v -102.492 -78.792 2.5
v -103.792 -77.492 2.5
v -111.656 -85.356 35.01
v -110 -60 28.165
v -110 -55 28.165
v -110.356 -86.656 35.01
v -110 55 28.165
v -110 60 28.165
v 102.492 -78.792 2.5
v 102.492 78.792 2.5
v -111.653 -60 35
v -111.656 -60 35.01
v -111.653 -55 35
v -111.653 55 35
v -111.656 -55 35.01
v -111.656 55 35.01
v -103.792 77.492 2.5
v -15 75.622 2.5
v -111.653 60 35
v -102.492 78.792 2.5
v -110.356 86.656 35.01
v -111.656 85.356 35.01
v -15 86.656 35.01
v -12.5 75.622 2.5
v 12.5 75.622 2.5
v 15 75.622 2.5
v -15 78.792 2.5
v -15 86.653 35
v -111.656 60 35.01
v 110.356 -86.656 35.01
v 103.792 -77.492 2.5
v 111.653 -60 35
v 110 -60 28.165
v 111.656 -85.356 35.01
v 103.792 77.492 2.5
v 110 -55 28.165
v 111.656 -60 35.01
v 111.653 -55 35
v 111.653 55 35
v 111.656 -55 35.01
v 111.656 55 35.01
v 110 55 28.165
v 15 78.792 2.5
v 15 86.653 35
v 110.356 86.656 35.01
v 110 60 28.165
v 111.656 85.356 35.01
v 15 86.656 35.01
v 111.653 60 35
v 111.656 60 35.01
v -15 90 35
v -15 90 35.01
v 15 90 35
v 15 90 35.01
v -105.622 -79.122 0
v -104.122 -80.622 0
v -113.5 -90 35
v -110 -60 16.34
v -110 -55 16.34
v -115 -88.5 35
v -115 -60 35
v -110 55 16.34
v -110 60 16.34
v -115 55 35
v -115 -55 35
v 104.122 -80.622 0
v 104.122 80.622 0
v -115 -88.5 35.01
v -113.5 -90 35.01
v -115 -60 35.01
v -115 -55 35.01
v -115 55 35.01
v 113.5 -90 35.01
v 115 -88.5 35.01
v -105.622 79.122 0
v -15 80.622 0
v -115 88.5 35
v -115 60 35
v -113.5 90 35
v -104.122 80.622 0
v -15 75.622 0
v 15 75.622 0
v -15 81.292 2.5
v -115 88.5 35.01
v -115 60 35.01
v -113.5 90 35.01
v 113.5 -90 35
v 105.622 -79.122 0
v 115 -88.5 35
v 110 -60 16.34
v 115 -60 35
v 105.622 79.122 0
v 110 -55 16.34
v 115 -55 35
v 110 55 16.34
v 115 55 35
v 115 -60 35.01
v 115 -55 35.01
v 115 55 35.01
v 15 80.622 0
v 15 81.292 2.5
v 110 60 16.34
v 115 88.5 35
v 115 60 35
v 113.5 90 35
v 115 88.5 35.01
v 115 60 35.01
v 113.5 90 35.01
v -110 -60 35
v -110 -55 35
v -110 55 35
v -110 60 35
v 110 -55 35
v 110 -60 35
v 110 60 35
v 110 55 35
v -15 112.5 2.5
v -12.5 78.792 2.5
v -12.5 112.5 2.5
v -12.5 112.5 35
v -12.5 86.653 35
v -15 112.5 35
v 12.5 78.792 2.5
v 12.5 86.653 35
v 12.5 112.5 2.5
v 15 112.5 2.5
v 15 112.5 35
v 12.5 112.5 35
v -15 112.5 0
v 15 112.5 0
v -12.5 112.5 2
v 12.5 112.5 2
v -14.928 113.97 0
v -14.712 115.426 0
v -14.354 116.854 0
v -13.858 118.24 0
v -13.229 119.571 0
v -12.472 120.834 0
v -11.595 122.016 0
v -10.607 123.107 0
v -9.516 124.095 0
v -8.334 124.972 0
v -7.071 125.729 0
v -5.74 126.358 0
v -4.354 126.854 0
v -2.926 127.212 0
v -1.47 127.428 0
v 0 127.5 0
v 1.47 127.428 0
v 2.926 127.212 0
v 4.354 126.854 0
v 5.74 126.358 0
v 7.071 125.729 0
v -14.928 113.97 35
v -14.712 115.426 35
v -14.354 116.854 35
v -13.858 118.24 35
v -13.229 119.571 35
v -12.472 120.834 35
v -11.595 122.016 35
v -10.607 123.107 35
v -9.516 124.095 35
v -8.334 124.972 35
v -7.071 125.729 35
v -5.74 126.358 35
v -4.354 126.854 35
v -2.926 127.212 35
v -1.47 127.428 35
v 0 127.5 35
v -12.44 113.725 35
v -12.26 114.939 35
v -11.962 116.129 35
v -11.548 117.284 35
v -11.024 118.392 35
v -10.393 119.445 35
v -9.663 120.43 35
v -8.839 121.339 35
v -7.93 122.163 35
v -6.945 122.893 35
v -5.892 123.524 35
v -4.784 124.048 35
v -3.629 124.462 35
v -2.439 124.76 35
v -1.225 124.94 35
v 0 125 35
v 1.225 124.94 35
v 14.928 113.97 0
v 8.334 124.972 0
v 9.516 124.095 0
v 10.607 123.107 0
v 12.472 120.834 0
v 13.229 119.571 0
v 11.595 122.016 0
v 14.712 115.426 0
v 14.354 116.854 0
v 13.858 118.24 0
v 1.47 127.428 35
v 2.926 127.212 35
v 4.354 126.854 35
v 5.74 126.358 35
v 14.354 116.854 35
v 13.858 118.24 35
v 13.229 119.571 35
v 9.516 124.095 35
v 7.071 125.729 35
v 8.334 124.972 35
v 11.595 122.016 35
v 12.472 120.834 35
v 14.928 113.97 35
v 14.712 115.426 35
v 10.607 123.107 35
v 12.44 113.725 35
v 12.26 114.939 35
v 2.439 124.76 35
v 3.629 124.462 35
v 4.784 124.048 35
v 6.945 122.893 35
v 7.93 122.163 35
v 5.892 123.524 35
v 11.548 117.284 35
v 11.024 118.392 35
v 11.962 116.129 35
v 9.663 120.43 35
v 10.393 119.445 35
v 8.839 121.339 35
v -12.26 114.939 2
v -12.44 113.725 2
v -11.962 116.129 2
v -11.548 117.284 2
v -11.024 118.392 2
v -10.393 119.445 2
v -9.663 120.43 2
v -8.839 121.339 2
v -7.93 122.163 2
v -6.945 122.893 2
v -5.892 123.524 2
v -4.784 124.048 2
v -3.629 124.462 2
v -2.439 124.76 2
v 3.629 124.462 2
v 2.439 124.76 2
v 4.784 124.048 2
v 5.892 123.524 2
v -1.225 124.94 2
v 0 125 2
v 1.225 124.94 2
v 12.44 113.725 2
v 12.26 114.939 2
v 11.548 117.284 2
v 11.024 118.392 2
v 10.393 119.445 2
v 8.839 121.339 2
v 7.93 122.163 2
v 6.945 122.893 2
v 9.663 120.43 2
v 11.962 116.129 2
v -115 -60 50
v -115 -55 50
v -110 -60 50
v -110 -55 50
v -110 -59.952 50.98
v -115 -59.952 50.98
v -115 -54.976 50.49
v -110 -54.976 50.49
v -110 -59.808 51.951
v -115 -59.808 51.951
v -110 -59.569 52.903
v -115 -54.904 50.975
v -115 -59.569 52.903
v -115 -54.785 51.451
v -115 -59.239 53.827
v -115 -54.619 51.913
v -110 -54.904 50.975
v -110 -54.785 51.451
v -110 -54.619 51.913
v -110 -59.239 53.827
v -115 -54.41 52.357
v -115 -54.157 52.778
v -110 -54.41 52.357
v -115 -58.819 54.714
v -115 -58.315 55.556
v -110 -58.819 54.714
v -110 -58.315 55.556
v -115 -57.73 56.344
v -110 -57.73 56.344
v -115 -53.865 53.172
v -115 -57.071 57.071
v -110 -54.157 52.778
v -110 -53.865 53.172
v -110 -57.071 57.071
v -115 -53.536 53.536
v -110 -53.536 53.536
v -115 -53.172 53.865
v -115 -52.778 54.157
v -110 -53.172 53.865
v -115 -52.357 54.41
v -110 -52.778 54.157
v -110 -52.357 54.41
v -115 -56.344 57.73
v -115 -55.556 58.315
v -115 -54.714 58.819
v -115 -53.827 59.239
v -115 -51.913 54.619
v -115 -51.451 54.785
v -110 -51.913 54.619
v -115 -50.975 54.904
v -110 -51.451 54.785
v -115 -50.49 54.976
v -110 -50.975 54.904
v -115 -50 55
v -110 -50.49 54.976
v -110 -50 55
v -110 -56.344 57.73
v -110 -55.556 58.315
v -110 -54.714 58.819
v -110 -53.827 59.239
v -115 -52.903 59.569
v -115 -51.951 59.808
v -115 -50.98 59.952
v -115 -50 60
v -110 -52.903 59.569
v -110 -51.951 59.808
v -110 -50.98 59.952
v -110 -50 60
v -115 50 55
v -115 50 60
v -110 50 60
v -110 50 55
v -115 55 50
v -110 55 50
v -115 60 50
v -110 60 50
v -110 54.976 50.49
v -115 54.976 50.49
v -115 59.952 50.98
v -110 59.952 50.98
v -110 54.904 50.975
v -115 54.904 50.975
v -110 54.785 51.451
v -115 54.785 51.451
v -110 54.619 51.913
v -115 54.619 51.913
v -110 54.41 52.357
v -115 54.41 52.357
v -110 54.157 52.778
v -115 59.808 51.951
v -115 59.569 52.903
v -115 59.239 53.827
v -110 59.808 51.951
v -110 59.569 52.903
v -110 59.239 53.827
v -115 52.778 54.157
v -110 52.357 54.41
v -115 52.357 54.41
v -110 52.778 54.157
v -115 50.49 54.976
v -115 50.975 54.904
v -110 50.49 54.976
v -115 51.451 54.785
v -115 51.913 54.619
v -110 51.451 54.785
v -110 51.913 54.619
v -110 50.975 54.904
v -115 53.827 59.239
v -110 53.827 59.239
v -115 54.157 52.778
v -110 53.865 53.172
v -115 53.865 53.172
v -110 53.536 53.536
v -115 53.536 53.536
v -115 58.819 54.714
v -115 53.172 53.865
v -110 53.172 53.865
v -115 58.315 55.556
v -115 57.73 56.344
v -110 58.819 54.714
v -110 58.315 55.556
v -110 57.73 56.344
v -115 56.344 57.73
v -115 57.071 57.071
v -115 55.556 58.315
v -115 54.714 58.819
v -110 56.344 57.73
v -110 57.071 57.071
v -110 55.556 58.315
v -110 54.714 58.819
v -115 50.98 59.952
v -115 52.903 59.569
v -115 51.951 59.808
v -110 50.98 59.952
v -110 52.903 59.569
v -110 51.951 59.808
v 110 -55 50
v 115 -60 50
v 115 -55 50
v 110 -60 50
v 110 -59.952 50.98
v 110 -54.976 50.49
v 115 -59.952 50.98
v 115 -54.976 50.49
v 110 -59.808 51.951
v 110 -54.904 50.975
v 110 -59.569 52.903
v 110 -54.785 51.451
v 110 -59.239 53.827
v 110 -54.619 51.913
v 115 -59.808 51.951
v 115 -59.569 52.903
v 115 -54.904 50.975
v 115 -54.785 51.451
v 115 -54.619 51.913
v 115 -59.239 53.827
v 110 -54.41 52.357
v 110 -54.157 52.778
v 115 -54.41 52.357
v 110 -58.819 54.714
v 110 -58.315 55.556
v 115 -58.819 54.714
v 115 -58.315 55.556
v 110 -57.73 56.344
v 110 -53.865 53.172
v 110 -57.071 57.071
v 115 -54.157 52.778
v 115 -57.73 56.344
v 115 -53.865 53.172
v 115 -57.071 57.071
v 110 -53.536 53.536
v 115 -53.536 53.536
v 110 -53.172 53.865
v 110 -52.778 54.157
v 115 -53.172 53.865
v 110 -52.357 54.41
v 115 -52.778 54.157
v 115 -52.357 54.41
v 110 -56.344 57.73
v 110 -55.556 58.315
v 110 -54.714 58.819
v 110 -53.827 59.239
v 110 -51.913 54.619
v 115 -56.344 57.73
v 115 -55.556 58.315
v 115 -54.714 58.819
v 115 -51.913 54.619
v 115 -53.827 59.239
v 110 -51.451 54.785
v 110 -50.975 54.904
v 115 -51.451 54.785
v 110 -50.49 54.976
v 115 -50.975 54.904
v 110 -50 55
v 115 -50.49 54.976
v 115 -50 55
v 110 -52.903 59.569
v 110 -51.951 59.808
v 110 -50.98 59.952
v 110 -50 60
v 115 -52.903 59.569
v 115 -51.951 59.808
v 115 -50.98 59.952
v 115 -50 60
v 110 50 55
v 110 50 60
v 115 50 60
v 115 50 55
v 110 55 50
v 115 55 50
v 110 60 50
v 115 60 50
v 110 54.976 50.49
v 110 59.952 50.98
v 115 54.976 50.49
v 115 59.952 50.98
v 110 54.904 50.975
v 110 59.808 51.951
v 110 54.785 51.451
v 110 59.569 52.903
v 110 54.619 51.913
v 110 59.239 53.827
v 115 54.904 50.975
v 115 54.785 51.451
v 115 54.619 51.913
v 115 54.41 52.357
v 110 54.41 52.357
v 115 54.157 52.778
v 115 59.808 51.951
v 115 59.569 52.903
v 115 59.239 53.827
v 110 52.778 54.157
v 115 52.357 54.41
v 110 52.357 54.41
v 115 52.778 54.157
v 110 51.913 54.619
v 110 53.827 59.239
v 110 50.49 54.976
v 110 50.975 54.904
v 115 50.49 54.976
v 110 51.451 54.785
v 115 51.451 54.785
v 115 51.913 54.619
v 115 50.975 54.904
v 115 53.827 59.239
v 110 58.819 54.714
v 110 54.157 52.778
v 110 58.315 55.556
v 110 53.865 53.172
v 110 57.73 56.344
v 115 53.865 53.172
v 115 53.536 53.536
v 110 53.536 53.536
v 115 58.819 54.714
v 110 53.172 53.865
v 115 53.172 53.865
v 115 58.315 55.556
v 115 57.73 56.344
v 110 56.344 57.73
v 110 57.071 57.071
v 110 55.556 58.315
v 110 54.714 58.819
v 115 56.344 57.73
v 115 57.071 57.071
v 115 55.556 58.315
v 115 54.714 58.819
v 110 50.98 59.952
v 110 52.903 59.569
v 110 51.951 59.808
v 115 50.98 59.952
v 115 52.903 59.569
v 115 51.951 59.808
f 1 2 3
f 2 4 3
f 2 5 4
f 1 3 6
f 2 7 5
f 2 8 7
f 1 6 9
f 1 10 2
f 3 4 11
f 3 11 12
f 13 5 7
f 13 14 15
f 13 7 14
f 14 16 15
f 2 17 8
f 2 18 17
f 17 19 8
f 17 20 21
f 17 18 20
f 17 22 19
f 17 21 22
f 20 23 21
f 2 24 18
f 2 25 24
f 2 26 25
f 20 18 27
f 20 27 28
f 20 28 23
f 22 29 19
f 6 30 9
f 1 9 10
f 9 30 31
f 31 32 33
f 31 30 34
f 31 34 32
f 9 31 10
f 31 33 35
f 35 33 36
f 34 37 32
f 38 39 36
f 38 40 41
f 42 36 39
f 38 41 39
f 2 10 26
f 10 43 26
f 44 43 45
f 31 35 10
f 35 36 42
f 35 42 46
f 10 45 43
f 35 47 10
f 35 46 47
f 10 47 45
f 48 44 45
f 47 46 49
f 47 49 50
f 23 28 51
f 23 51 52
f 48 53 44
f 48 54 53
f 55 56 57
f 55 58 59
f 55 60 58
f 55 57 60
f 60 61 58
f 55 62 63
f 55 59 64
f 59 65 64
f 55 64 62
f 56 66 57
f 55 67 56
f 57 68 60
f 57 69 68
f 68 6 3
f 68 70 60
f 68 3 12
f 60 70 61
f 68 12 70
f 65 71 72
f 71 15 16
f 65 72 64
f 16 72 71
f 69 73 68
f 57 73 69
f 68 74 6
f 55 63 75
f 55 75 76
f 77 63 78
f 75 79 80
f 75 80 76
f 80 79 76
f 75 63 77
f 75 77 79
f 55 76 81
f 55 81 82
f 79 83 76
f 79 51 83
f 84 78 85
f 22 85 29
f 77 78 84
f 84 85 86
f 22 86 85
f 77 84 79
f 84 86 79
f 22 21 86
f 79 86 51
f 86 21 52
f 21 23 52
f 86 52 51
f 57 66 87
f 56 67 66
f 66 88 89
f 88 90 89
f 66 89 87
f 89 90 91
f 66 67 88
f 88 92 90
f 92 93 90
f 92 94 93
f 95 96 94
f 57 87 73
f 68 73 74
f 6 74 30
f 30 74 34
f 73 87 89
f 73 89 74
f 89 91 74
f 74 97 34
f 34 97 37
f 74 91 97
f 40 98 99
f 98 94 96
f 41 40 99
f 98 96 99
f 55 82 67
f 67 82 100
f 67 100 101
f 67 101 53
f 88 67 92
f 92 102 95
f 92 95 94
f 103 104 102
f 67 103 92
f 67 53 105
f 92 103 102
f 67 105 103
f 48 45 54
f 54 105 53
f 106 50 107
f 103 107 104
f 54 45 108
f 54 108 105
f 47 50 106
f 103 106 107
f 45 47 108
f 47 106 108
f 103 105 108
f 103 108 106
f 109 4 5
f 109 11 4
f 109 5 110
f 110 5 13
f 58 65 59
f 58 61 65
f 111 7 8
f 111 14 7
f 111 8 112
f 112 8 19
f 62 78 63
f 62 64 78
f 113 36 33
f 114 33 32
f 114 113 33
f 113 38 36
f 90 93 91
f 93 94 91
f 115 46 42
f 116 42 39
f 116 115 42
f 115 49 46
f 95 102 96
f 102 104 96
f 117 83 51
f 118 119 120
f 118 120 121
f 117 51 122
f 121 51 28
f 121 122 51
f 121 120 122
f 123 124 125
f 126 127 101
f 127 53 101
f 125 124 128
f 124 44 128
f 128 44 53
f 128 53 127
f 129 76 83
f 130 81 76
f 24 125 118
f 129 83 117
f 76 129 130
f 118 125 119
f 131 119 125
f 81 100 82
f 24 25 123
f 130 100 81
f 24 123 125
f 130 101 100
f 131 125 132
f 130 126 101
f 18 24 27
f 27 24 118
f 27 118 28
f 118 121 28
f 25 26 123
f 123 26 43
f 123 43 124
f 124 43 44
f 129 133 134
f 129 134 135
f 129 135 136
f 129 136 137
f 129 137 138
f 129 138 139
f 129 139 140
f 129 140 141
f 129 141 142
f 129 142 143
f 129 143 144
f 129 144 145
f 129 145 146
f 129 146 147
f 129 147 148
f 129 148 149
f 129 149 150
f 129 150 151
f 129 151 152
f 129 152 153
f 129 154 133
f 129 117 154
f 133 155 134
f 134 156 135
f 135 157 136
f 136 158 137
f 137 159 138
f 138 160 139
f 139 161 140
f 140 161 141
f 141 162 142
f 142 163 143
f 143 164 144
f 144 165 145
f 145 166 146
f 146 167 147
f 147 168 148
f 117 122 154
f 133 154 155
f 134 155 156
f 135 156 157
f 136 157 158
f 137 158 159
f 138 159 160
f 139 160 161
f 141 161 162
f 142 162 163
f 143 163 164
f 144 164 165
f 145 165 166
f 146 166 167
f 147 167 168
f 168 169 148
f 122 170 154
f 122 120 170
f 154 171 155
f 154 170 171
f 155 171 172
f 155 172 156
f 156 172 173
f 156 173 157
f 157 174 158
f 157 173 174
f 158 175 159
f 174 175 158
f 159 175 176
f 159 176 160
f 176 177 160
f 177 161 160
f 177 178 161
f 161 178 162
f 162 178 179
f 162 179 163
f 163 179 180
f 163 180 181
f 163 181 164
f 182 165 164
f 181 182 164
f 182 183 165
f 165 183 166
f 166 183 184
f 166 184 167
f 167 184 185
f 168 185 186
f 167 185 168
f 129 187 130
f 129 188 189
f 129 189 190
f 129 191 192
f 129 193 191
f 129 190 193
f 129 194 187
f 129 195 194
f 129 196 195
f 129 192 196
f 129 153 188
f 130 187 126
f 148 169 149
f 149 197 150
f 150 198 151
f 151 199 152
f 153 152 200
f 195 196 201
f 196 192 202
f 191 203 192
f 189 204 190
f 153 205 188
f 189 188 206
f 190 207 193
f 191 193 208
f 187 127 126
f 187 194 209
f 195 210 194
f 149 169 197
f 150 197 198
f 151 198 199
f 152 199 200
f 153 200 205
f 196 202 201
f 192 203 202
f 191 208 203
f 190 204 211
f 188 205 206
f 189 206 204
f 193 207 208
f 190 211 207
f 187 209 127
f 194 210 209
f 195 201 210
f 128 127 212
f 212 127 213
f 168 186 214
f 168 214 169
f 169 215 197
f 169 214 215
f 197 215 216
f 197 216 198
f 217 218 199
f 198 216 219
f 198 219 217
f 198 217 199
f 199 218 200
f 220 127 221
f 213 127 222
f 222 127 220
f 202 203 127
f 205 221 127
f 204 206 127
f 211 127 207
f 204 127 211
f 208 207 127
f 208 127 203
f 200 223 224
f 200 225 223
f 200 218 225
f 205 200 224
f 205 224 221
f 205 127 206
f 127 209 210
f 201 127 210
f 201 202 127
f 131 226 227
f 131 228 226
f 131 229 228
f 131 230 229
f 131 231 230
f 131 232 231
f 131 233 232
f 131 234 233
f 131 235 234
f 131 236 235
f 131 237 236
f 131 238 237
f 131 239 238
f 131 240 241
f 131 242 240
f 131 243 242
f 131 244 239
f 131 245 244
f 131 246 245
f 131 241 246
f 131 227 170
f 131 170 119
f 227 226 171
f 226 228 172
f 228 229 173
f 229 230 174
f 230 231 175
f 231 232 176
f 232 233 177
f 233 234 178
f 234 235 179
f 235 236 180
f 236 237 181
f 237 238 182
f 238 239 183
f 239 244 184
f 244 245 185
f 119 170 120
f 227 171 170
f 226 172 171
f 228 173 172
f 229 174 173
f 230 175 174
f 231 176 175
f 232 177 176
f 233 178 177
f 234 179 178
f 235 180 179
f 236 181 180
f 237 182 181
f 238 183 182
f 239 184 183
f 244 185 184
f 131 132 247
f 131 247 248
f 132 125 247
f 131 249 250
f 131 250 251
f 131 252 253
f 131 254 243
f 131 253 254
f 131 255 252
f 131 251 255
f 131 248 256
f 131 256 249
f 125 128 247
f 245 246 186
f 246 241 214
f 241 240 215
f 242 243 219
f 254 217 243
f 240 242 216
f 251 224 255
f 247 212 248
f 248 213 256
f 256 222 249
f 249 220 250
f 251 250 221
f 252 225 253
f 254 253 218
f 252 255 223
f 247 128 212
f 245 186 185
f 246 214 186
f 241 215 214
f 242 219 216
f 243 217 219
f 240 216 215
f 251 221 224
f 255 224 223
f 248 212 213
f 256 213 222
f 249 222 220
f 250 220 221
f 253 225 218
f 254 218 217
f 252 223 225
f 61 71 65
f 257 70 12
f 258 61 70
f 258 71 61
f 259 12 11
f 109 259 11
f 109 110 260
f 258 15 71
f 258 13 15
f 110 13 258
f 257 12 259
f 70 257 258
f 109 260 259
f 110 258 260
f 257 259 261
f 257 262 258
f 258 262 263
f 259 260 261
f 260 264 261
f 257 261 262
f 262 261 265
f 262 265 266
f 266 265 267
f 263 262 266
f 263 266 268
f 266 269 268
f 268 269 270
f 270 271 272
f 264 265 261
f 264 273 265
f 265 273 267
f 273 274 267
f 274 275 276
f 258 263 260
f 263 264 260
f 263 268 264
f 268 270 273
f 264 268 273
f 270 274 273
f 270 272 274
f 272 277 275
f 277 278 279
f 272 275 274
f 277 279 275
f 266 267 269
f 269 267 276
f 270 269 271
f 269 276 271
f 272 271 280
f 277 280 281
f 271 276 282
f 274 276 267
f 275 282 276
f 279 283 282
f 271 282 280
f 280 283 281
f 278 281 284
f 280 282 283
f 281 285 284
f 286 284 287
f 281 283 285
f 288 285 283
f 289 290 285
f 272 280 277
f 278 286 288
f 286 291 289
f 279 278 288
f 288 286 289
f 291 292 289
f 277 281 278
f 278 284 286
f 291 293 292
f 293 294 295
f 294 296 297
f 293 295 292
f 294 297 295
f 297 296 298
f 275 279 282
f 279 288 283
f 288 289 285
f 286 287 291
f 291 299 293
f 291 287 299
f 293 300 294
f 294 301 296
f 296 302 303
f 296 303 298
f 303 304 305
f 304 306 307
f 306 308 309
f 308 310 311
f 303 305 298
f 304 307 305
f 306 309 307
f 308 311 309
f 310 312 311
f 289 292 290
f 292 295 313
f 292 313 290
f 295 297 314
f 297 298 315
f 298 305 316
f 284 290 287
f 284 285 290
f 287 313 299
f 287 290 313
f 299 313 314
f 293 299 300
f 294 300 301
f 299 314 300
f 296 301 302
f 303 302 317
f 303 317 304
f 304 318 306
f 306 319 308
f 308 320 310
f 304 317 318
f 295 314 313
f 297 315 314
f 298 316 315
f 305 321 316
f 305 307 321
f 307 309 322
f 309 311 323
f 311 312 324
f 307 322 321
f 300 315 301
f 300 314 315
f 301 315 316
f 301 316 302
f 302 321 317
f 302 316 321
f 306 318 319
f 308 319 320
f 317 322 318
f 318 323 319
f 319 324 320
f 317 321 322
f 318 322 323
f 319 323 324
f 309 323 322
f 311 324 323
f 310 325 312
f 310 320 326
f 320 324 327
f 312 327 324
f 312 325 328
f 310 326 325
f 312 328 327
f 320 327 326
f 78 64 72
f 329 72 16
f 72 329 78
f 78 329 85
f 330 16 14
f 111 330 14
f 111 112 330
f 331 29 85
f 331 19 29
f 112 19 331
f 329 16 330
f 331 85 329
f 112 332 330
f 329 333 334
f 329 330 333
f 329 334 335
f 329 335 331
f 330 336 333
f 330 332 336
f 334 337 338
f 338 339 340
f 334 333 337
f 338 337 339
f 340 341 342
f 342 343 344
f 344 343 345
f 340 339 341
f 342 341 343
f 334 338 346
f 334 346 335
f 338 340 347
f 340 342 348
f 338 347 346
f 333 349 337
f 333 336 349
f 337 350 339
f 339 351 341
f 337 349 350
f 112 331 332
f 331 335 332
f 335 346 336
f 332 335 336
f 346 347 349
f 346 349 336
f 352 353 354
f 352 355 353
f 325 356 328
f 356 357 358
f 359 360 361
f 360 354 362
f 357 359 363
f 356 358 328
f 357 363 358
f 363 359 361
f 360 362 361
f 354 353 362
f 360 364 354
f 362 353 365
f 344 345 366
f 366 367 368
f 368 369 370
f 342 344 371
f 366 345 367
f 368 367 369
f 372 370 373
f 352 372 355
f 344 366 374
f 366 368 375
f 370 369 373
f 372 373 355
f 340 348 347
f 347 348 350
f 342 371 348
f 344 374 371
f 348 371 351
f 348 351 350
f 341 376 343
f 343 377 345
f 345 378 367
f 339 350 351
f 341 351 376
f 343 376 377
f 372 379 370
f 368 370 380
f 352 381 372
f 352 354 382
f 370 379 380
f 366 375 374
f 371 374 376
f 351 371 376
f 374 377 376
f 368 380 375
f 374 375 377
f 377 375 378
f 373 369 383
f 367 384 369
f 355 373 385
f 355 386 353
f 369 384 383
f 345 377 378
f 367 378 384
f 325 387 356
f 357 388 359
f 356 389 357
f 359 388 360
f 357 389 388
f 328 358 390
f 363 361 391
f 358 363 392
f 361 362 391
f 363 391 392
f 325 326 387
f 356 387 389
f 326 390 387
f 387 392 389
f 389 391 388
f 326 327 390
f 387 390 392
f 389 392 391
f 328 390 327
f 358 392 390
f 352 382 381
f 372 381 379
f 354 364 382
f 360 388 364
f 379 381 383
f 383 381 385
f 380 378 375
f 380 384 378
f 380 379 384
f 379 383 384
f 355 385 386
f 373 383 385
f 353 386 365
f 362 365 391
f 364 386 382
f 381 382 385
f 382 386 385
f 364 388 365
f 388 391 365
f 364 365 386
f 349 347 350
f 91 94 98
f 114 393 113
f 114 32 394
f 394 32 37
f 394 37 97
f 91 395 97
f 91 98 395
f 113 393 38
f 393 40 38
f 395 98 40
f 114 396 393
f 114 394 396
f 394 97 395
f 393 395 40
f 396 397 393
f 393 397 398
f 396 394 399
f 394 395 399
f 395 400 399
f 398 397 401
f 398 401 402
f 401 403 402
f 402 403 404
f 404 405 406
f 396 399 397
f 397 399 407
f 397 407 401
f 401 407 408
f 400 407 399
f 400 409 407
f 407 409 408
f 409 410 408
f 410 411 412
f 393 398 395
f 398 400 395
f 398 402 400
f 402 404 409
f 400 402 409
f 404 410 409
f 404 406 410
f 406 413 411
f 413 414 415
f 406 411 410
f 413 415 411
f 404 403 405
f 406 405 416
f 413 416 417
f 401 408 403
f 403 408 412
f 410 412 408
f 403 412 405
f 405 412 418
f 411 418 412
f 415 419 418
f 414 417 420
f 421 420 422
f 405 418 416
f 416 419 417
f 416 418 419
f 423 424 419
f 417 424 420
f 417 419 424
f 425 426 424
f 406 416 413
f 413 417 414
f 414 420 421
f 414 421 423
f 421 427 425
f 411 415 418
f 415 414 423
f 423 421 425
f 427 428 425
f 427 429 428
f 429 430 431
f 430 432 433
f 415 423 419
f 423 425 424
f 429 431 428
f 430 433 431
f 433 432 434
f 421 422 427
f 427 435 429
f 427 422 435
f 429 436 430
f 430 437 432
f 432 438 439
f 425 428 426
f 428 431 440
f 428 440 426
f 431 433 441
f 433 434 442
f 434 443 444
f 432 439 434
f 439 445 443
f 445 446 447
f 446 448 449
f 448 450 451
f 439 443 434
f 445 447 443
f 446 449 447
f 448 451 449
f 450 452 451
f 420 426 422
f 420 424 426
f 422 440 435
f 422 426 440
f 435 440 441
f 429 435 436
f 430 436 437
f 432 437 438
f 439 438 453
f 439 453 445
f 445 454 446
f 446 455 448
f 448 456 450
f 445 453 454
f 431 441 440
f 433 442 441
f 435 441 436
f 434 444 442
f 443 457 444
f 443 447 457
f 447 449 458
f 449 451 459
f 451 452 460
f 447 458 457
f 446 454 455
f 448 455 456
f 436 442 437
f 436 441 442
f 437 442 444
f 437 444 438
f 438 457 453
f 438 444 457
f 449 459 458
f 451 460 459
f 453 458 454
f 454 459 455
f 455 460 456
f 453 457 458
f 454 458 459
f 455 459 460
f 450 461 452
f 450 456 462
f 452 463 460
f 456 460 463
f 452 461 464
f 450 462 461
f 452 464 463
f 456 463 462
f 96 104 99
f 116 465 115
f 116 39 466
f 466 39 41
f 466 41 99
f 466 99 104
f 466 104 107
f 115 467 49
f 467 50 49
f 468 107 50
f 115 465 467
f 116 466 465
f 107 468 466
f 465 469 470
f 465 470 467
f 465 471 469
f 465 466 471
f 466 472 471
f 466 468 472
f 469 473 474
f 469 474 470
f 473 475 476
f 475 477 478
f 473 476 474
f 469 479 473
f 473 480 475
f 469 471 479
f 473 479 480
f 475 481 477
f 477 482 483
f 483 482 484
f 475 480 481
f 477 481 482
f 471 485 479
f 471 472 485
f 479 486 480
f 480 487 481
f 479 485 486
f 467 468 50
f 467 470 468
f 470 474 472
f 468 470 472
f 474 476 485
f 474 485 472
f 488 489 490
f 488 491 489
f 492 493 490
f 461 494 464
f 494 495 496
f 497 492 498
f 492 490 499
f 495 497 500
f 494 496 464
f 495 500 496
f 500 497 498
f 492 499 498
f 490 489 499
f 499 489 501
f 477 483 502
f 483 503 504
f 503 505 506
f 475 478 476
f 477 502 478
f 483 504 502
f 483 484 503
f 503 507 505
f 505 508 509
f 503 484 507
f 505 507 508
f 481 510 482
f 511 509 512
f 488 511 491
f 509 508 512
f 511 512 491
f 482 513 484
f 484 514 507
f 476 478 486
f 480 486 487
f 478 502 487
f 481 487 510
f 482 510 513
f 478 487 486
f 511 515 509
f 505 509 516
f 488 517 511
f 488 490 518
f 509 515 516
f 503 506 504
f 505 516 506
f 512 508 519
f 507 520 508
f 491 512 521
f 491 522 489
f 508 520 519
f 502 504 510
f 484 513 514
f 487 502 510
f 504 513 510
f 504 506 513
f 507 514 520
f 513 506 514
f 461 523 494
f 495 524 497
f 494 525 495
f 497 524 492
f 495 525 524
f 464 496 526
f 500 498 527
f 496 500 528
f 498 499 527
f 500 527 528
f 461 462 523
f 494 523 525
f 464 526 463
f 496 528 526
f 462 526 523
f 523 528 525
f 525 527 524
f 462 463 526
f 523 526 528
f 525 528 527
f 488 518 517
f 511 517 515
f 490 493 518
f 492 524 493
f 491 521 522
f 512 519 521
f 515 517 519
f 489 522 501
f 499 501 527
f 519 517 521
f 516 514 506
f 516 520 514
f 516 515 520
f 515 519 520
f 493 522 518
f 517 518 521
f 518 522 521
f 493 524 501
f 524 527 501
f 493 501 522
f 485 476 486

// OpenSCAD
$fn = 64;

// AC condensate drain pan. Dimensions are millimetres.
wall_thickness = 2.5;
chamfer_size = 1.5;
box_height = 35;
box_width = 230;
box_depth = 180;
box_wall_angle = 75;
spout_width = 30;
spout_length = 25;
handle_length = 120;
handle_width = 5;
handle_height = 25;
handle_radius = 10;

bottom_width = box_width - 2 * box_height / tan(box_wall_angle);
bottom_depth = box_depth - 2 * box_height / tan(box_wall_angle);
inner_top_width = box_width - 2 * wall_thickness;
inner_top_depth = box_depth - 2 * wall_thickness;
inner_bottom_width = inner_top_width -
	2 * (box_height - wall_thickness) / tan(box_wall_angle);
inner_bottom_depth = inner_top_depth -
	2 * (box_height - wall_thickness) / tan(box_wall_angle);

assert(bottom_width > 2 * wall_thickness);
assert(bottom_depth > 2 * wall_thickness);

module chamfered_rect(width, depth, chamfer) {
	polygon([
		[-width/2 + chamfer, -depth/2], [width/2 - chamfer, -depth/2],
		[width/2, -depth/2 + chamfer], [width/2, depth/2 - chamfer],
		[width/2 - chamfer, depth/2], [-width/2 + chamfer, depth/2],
		[-width/2, depth/2 - chamfer], [-width/2, -depth/2 + chamfer]
	]);
}

module tapered_prism(bottom_w, bottom_d, top_w, top_d, height, chamfer=0) {
	hull() {
		linear_extrude(height=0.01)
			chamfered_rect(bottom_w, bottom_d, chamfer);
		translate([0, 0, height])
			linear_extrude(height=0.01)
				chamfered_rect(top_w, top_d, chamfer);
	}
}

module pan_outer() {
	tapered_prism(bottom_width, bottom_depth, box_width, box_depth,
				  box_height, chamfer_size);
}

module pan_cavity() {
	translate([0, 0, wall_thickness])
		tapered_prism(inner_bottom_width, inner_bottom_depth,
					  inner_top_width, inner_top_depth, box_height + 1,
					  max(0.2, chamfer_size - 0.2));
}

module rounded_rect(width, height, radius) {
	radius = min(radius, min(width, height) / 2);
	hull() {
		for (y = [-width/2 + radius, width/2 - radius])
			for (z = [-height/2 + radius, height/2 - radius])
				translate([y, z]) circle(r=radius);
	}
}

// A U profile made by extruding the upper half of a rounded-rectangle ring.
module handle(side) {
	// The outside face is flush with the wall; the handle extends inward.
	x = side * (box_width / 2 - handle_width / 2);
	translate([x, 0, box_height])
		rotate([0, 90, 0])
			linear_extrude(height=handle_width, center=true)
				difference() {
					intersection() {
						difference() {
							rounded_rect(2 * handle_height, handle_length,
										 handle_radius);
							rounded_rect(2 * handle_height - 2 * handle_width,
										 handle_length - 2 * handle_width,
										 max(0.5, handle_radius - handle_width));
						}
						// Keep profile x <= 0. Rotation maps this to the
						// portion above the box rim.
						translate([-handle_height / 2, 0, 0])
							square([handle_height, handle_length + 2], center=true);
					}
				}
}

// Square end pillars extend each handle leg to the bottom and follow the
// tapered outer wall instead of using separate wedges.
module handle_pillars(side) {
	x = side * (box_width / 2 - handle_width / 2);
	for (y = [-1, 1] * (handle_length / 2 - handle_width / 2))
		intersection() {
			translate([x, y, box_height / 2])
				cube([handle_width, handle_width, box_height], center=true);
			pan_outer();
		}
}

// Rectangular U-channel on the back (+Y) wall, open upward and inward.
module spout_channel() {
	wall_penetration = box_height / tan(box_wall_angle) + wall_thickness;
	channel_length = spout_length + wall_penetration;
	// Keep the outlet end fixed while extending the channel inward through
	// the entire sloped back wall.
	y = box_depth / 2 + spout_length - wall_thickness - channel_length / 2;
	difference() {
		union() {
			translate([0, y, wall_thickness/2])
				cube([spout_width, channel_length, wall_thickness], center=true);
			for (x = [-spout_width/2 + wall_thickness/2,
					   spout_width/2 - wall_thickness/2])
				translate([x, y, box_height/2])
					cube([wall_thickness, channel_length, box_height], center=true);
		}
		// The channel may overlap the angled wall, but cannot enter the
		// pan's empty space.
		pan_cavity();
	}
}

// Vertical hollow half-cylinder, with its opening facing into the pan.
module spout_half_cylinder() {
	center_y = box_depth / 2 + spout_length - wall_thickness;
	translate([0, center_y, box_height / 2])
		difference() {
			intersection() {
				cylinder(h=box_height, r=spout_width / 2, center=true);
				translate([0, spout_width / 4, 0])
					cube([spout_width + 2, spout_width / 2,
						  box_height + 2], center=true);
			}
			intersection() {
				translate([0, 0, wall_thickness / 2])
					cylinder(h=box_height - wall_thickness + 1,
							 r=spout_width / 2 - wall_thickness, center=true);
				translate([0, spout_width / 4, 0])
					cube([spout_width + 4, spout_width / 2,
						  box_height + 3], center=true);
			}
		}
}

// Cut the back wall away so the rectangular channel opens into the cavity.
module spout_opening() {
	wall_penetration = box_height / tan(box_wall_angle) + wall_thickness;
	translate([0,
			   box_depth / 2 - wall_penetration / 2,
			   box_height / 2])
		cube([spout_width, wall_penetration + 2, box_height + 1],
			 center=true);
}

// The cavity and spout opening are cut first; the channel is then added back.
difference() {
	pan_outer();
	union() {
		pan_cavity();
		spout_opening();
	}
}

handle(-1);
handle(1);
handle_pillars(-1);
handle_pillars(1);
spout_channel();
spout_half_cylinder();
